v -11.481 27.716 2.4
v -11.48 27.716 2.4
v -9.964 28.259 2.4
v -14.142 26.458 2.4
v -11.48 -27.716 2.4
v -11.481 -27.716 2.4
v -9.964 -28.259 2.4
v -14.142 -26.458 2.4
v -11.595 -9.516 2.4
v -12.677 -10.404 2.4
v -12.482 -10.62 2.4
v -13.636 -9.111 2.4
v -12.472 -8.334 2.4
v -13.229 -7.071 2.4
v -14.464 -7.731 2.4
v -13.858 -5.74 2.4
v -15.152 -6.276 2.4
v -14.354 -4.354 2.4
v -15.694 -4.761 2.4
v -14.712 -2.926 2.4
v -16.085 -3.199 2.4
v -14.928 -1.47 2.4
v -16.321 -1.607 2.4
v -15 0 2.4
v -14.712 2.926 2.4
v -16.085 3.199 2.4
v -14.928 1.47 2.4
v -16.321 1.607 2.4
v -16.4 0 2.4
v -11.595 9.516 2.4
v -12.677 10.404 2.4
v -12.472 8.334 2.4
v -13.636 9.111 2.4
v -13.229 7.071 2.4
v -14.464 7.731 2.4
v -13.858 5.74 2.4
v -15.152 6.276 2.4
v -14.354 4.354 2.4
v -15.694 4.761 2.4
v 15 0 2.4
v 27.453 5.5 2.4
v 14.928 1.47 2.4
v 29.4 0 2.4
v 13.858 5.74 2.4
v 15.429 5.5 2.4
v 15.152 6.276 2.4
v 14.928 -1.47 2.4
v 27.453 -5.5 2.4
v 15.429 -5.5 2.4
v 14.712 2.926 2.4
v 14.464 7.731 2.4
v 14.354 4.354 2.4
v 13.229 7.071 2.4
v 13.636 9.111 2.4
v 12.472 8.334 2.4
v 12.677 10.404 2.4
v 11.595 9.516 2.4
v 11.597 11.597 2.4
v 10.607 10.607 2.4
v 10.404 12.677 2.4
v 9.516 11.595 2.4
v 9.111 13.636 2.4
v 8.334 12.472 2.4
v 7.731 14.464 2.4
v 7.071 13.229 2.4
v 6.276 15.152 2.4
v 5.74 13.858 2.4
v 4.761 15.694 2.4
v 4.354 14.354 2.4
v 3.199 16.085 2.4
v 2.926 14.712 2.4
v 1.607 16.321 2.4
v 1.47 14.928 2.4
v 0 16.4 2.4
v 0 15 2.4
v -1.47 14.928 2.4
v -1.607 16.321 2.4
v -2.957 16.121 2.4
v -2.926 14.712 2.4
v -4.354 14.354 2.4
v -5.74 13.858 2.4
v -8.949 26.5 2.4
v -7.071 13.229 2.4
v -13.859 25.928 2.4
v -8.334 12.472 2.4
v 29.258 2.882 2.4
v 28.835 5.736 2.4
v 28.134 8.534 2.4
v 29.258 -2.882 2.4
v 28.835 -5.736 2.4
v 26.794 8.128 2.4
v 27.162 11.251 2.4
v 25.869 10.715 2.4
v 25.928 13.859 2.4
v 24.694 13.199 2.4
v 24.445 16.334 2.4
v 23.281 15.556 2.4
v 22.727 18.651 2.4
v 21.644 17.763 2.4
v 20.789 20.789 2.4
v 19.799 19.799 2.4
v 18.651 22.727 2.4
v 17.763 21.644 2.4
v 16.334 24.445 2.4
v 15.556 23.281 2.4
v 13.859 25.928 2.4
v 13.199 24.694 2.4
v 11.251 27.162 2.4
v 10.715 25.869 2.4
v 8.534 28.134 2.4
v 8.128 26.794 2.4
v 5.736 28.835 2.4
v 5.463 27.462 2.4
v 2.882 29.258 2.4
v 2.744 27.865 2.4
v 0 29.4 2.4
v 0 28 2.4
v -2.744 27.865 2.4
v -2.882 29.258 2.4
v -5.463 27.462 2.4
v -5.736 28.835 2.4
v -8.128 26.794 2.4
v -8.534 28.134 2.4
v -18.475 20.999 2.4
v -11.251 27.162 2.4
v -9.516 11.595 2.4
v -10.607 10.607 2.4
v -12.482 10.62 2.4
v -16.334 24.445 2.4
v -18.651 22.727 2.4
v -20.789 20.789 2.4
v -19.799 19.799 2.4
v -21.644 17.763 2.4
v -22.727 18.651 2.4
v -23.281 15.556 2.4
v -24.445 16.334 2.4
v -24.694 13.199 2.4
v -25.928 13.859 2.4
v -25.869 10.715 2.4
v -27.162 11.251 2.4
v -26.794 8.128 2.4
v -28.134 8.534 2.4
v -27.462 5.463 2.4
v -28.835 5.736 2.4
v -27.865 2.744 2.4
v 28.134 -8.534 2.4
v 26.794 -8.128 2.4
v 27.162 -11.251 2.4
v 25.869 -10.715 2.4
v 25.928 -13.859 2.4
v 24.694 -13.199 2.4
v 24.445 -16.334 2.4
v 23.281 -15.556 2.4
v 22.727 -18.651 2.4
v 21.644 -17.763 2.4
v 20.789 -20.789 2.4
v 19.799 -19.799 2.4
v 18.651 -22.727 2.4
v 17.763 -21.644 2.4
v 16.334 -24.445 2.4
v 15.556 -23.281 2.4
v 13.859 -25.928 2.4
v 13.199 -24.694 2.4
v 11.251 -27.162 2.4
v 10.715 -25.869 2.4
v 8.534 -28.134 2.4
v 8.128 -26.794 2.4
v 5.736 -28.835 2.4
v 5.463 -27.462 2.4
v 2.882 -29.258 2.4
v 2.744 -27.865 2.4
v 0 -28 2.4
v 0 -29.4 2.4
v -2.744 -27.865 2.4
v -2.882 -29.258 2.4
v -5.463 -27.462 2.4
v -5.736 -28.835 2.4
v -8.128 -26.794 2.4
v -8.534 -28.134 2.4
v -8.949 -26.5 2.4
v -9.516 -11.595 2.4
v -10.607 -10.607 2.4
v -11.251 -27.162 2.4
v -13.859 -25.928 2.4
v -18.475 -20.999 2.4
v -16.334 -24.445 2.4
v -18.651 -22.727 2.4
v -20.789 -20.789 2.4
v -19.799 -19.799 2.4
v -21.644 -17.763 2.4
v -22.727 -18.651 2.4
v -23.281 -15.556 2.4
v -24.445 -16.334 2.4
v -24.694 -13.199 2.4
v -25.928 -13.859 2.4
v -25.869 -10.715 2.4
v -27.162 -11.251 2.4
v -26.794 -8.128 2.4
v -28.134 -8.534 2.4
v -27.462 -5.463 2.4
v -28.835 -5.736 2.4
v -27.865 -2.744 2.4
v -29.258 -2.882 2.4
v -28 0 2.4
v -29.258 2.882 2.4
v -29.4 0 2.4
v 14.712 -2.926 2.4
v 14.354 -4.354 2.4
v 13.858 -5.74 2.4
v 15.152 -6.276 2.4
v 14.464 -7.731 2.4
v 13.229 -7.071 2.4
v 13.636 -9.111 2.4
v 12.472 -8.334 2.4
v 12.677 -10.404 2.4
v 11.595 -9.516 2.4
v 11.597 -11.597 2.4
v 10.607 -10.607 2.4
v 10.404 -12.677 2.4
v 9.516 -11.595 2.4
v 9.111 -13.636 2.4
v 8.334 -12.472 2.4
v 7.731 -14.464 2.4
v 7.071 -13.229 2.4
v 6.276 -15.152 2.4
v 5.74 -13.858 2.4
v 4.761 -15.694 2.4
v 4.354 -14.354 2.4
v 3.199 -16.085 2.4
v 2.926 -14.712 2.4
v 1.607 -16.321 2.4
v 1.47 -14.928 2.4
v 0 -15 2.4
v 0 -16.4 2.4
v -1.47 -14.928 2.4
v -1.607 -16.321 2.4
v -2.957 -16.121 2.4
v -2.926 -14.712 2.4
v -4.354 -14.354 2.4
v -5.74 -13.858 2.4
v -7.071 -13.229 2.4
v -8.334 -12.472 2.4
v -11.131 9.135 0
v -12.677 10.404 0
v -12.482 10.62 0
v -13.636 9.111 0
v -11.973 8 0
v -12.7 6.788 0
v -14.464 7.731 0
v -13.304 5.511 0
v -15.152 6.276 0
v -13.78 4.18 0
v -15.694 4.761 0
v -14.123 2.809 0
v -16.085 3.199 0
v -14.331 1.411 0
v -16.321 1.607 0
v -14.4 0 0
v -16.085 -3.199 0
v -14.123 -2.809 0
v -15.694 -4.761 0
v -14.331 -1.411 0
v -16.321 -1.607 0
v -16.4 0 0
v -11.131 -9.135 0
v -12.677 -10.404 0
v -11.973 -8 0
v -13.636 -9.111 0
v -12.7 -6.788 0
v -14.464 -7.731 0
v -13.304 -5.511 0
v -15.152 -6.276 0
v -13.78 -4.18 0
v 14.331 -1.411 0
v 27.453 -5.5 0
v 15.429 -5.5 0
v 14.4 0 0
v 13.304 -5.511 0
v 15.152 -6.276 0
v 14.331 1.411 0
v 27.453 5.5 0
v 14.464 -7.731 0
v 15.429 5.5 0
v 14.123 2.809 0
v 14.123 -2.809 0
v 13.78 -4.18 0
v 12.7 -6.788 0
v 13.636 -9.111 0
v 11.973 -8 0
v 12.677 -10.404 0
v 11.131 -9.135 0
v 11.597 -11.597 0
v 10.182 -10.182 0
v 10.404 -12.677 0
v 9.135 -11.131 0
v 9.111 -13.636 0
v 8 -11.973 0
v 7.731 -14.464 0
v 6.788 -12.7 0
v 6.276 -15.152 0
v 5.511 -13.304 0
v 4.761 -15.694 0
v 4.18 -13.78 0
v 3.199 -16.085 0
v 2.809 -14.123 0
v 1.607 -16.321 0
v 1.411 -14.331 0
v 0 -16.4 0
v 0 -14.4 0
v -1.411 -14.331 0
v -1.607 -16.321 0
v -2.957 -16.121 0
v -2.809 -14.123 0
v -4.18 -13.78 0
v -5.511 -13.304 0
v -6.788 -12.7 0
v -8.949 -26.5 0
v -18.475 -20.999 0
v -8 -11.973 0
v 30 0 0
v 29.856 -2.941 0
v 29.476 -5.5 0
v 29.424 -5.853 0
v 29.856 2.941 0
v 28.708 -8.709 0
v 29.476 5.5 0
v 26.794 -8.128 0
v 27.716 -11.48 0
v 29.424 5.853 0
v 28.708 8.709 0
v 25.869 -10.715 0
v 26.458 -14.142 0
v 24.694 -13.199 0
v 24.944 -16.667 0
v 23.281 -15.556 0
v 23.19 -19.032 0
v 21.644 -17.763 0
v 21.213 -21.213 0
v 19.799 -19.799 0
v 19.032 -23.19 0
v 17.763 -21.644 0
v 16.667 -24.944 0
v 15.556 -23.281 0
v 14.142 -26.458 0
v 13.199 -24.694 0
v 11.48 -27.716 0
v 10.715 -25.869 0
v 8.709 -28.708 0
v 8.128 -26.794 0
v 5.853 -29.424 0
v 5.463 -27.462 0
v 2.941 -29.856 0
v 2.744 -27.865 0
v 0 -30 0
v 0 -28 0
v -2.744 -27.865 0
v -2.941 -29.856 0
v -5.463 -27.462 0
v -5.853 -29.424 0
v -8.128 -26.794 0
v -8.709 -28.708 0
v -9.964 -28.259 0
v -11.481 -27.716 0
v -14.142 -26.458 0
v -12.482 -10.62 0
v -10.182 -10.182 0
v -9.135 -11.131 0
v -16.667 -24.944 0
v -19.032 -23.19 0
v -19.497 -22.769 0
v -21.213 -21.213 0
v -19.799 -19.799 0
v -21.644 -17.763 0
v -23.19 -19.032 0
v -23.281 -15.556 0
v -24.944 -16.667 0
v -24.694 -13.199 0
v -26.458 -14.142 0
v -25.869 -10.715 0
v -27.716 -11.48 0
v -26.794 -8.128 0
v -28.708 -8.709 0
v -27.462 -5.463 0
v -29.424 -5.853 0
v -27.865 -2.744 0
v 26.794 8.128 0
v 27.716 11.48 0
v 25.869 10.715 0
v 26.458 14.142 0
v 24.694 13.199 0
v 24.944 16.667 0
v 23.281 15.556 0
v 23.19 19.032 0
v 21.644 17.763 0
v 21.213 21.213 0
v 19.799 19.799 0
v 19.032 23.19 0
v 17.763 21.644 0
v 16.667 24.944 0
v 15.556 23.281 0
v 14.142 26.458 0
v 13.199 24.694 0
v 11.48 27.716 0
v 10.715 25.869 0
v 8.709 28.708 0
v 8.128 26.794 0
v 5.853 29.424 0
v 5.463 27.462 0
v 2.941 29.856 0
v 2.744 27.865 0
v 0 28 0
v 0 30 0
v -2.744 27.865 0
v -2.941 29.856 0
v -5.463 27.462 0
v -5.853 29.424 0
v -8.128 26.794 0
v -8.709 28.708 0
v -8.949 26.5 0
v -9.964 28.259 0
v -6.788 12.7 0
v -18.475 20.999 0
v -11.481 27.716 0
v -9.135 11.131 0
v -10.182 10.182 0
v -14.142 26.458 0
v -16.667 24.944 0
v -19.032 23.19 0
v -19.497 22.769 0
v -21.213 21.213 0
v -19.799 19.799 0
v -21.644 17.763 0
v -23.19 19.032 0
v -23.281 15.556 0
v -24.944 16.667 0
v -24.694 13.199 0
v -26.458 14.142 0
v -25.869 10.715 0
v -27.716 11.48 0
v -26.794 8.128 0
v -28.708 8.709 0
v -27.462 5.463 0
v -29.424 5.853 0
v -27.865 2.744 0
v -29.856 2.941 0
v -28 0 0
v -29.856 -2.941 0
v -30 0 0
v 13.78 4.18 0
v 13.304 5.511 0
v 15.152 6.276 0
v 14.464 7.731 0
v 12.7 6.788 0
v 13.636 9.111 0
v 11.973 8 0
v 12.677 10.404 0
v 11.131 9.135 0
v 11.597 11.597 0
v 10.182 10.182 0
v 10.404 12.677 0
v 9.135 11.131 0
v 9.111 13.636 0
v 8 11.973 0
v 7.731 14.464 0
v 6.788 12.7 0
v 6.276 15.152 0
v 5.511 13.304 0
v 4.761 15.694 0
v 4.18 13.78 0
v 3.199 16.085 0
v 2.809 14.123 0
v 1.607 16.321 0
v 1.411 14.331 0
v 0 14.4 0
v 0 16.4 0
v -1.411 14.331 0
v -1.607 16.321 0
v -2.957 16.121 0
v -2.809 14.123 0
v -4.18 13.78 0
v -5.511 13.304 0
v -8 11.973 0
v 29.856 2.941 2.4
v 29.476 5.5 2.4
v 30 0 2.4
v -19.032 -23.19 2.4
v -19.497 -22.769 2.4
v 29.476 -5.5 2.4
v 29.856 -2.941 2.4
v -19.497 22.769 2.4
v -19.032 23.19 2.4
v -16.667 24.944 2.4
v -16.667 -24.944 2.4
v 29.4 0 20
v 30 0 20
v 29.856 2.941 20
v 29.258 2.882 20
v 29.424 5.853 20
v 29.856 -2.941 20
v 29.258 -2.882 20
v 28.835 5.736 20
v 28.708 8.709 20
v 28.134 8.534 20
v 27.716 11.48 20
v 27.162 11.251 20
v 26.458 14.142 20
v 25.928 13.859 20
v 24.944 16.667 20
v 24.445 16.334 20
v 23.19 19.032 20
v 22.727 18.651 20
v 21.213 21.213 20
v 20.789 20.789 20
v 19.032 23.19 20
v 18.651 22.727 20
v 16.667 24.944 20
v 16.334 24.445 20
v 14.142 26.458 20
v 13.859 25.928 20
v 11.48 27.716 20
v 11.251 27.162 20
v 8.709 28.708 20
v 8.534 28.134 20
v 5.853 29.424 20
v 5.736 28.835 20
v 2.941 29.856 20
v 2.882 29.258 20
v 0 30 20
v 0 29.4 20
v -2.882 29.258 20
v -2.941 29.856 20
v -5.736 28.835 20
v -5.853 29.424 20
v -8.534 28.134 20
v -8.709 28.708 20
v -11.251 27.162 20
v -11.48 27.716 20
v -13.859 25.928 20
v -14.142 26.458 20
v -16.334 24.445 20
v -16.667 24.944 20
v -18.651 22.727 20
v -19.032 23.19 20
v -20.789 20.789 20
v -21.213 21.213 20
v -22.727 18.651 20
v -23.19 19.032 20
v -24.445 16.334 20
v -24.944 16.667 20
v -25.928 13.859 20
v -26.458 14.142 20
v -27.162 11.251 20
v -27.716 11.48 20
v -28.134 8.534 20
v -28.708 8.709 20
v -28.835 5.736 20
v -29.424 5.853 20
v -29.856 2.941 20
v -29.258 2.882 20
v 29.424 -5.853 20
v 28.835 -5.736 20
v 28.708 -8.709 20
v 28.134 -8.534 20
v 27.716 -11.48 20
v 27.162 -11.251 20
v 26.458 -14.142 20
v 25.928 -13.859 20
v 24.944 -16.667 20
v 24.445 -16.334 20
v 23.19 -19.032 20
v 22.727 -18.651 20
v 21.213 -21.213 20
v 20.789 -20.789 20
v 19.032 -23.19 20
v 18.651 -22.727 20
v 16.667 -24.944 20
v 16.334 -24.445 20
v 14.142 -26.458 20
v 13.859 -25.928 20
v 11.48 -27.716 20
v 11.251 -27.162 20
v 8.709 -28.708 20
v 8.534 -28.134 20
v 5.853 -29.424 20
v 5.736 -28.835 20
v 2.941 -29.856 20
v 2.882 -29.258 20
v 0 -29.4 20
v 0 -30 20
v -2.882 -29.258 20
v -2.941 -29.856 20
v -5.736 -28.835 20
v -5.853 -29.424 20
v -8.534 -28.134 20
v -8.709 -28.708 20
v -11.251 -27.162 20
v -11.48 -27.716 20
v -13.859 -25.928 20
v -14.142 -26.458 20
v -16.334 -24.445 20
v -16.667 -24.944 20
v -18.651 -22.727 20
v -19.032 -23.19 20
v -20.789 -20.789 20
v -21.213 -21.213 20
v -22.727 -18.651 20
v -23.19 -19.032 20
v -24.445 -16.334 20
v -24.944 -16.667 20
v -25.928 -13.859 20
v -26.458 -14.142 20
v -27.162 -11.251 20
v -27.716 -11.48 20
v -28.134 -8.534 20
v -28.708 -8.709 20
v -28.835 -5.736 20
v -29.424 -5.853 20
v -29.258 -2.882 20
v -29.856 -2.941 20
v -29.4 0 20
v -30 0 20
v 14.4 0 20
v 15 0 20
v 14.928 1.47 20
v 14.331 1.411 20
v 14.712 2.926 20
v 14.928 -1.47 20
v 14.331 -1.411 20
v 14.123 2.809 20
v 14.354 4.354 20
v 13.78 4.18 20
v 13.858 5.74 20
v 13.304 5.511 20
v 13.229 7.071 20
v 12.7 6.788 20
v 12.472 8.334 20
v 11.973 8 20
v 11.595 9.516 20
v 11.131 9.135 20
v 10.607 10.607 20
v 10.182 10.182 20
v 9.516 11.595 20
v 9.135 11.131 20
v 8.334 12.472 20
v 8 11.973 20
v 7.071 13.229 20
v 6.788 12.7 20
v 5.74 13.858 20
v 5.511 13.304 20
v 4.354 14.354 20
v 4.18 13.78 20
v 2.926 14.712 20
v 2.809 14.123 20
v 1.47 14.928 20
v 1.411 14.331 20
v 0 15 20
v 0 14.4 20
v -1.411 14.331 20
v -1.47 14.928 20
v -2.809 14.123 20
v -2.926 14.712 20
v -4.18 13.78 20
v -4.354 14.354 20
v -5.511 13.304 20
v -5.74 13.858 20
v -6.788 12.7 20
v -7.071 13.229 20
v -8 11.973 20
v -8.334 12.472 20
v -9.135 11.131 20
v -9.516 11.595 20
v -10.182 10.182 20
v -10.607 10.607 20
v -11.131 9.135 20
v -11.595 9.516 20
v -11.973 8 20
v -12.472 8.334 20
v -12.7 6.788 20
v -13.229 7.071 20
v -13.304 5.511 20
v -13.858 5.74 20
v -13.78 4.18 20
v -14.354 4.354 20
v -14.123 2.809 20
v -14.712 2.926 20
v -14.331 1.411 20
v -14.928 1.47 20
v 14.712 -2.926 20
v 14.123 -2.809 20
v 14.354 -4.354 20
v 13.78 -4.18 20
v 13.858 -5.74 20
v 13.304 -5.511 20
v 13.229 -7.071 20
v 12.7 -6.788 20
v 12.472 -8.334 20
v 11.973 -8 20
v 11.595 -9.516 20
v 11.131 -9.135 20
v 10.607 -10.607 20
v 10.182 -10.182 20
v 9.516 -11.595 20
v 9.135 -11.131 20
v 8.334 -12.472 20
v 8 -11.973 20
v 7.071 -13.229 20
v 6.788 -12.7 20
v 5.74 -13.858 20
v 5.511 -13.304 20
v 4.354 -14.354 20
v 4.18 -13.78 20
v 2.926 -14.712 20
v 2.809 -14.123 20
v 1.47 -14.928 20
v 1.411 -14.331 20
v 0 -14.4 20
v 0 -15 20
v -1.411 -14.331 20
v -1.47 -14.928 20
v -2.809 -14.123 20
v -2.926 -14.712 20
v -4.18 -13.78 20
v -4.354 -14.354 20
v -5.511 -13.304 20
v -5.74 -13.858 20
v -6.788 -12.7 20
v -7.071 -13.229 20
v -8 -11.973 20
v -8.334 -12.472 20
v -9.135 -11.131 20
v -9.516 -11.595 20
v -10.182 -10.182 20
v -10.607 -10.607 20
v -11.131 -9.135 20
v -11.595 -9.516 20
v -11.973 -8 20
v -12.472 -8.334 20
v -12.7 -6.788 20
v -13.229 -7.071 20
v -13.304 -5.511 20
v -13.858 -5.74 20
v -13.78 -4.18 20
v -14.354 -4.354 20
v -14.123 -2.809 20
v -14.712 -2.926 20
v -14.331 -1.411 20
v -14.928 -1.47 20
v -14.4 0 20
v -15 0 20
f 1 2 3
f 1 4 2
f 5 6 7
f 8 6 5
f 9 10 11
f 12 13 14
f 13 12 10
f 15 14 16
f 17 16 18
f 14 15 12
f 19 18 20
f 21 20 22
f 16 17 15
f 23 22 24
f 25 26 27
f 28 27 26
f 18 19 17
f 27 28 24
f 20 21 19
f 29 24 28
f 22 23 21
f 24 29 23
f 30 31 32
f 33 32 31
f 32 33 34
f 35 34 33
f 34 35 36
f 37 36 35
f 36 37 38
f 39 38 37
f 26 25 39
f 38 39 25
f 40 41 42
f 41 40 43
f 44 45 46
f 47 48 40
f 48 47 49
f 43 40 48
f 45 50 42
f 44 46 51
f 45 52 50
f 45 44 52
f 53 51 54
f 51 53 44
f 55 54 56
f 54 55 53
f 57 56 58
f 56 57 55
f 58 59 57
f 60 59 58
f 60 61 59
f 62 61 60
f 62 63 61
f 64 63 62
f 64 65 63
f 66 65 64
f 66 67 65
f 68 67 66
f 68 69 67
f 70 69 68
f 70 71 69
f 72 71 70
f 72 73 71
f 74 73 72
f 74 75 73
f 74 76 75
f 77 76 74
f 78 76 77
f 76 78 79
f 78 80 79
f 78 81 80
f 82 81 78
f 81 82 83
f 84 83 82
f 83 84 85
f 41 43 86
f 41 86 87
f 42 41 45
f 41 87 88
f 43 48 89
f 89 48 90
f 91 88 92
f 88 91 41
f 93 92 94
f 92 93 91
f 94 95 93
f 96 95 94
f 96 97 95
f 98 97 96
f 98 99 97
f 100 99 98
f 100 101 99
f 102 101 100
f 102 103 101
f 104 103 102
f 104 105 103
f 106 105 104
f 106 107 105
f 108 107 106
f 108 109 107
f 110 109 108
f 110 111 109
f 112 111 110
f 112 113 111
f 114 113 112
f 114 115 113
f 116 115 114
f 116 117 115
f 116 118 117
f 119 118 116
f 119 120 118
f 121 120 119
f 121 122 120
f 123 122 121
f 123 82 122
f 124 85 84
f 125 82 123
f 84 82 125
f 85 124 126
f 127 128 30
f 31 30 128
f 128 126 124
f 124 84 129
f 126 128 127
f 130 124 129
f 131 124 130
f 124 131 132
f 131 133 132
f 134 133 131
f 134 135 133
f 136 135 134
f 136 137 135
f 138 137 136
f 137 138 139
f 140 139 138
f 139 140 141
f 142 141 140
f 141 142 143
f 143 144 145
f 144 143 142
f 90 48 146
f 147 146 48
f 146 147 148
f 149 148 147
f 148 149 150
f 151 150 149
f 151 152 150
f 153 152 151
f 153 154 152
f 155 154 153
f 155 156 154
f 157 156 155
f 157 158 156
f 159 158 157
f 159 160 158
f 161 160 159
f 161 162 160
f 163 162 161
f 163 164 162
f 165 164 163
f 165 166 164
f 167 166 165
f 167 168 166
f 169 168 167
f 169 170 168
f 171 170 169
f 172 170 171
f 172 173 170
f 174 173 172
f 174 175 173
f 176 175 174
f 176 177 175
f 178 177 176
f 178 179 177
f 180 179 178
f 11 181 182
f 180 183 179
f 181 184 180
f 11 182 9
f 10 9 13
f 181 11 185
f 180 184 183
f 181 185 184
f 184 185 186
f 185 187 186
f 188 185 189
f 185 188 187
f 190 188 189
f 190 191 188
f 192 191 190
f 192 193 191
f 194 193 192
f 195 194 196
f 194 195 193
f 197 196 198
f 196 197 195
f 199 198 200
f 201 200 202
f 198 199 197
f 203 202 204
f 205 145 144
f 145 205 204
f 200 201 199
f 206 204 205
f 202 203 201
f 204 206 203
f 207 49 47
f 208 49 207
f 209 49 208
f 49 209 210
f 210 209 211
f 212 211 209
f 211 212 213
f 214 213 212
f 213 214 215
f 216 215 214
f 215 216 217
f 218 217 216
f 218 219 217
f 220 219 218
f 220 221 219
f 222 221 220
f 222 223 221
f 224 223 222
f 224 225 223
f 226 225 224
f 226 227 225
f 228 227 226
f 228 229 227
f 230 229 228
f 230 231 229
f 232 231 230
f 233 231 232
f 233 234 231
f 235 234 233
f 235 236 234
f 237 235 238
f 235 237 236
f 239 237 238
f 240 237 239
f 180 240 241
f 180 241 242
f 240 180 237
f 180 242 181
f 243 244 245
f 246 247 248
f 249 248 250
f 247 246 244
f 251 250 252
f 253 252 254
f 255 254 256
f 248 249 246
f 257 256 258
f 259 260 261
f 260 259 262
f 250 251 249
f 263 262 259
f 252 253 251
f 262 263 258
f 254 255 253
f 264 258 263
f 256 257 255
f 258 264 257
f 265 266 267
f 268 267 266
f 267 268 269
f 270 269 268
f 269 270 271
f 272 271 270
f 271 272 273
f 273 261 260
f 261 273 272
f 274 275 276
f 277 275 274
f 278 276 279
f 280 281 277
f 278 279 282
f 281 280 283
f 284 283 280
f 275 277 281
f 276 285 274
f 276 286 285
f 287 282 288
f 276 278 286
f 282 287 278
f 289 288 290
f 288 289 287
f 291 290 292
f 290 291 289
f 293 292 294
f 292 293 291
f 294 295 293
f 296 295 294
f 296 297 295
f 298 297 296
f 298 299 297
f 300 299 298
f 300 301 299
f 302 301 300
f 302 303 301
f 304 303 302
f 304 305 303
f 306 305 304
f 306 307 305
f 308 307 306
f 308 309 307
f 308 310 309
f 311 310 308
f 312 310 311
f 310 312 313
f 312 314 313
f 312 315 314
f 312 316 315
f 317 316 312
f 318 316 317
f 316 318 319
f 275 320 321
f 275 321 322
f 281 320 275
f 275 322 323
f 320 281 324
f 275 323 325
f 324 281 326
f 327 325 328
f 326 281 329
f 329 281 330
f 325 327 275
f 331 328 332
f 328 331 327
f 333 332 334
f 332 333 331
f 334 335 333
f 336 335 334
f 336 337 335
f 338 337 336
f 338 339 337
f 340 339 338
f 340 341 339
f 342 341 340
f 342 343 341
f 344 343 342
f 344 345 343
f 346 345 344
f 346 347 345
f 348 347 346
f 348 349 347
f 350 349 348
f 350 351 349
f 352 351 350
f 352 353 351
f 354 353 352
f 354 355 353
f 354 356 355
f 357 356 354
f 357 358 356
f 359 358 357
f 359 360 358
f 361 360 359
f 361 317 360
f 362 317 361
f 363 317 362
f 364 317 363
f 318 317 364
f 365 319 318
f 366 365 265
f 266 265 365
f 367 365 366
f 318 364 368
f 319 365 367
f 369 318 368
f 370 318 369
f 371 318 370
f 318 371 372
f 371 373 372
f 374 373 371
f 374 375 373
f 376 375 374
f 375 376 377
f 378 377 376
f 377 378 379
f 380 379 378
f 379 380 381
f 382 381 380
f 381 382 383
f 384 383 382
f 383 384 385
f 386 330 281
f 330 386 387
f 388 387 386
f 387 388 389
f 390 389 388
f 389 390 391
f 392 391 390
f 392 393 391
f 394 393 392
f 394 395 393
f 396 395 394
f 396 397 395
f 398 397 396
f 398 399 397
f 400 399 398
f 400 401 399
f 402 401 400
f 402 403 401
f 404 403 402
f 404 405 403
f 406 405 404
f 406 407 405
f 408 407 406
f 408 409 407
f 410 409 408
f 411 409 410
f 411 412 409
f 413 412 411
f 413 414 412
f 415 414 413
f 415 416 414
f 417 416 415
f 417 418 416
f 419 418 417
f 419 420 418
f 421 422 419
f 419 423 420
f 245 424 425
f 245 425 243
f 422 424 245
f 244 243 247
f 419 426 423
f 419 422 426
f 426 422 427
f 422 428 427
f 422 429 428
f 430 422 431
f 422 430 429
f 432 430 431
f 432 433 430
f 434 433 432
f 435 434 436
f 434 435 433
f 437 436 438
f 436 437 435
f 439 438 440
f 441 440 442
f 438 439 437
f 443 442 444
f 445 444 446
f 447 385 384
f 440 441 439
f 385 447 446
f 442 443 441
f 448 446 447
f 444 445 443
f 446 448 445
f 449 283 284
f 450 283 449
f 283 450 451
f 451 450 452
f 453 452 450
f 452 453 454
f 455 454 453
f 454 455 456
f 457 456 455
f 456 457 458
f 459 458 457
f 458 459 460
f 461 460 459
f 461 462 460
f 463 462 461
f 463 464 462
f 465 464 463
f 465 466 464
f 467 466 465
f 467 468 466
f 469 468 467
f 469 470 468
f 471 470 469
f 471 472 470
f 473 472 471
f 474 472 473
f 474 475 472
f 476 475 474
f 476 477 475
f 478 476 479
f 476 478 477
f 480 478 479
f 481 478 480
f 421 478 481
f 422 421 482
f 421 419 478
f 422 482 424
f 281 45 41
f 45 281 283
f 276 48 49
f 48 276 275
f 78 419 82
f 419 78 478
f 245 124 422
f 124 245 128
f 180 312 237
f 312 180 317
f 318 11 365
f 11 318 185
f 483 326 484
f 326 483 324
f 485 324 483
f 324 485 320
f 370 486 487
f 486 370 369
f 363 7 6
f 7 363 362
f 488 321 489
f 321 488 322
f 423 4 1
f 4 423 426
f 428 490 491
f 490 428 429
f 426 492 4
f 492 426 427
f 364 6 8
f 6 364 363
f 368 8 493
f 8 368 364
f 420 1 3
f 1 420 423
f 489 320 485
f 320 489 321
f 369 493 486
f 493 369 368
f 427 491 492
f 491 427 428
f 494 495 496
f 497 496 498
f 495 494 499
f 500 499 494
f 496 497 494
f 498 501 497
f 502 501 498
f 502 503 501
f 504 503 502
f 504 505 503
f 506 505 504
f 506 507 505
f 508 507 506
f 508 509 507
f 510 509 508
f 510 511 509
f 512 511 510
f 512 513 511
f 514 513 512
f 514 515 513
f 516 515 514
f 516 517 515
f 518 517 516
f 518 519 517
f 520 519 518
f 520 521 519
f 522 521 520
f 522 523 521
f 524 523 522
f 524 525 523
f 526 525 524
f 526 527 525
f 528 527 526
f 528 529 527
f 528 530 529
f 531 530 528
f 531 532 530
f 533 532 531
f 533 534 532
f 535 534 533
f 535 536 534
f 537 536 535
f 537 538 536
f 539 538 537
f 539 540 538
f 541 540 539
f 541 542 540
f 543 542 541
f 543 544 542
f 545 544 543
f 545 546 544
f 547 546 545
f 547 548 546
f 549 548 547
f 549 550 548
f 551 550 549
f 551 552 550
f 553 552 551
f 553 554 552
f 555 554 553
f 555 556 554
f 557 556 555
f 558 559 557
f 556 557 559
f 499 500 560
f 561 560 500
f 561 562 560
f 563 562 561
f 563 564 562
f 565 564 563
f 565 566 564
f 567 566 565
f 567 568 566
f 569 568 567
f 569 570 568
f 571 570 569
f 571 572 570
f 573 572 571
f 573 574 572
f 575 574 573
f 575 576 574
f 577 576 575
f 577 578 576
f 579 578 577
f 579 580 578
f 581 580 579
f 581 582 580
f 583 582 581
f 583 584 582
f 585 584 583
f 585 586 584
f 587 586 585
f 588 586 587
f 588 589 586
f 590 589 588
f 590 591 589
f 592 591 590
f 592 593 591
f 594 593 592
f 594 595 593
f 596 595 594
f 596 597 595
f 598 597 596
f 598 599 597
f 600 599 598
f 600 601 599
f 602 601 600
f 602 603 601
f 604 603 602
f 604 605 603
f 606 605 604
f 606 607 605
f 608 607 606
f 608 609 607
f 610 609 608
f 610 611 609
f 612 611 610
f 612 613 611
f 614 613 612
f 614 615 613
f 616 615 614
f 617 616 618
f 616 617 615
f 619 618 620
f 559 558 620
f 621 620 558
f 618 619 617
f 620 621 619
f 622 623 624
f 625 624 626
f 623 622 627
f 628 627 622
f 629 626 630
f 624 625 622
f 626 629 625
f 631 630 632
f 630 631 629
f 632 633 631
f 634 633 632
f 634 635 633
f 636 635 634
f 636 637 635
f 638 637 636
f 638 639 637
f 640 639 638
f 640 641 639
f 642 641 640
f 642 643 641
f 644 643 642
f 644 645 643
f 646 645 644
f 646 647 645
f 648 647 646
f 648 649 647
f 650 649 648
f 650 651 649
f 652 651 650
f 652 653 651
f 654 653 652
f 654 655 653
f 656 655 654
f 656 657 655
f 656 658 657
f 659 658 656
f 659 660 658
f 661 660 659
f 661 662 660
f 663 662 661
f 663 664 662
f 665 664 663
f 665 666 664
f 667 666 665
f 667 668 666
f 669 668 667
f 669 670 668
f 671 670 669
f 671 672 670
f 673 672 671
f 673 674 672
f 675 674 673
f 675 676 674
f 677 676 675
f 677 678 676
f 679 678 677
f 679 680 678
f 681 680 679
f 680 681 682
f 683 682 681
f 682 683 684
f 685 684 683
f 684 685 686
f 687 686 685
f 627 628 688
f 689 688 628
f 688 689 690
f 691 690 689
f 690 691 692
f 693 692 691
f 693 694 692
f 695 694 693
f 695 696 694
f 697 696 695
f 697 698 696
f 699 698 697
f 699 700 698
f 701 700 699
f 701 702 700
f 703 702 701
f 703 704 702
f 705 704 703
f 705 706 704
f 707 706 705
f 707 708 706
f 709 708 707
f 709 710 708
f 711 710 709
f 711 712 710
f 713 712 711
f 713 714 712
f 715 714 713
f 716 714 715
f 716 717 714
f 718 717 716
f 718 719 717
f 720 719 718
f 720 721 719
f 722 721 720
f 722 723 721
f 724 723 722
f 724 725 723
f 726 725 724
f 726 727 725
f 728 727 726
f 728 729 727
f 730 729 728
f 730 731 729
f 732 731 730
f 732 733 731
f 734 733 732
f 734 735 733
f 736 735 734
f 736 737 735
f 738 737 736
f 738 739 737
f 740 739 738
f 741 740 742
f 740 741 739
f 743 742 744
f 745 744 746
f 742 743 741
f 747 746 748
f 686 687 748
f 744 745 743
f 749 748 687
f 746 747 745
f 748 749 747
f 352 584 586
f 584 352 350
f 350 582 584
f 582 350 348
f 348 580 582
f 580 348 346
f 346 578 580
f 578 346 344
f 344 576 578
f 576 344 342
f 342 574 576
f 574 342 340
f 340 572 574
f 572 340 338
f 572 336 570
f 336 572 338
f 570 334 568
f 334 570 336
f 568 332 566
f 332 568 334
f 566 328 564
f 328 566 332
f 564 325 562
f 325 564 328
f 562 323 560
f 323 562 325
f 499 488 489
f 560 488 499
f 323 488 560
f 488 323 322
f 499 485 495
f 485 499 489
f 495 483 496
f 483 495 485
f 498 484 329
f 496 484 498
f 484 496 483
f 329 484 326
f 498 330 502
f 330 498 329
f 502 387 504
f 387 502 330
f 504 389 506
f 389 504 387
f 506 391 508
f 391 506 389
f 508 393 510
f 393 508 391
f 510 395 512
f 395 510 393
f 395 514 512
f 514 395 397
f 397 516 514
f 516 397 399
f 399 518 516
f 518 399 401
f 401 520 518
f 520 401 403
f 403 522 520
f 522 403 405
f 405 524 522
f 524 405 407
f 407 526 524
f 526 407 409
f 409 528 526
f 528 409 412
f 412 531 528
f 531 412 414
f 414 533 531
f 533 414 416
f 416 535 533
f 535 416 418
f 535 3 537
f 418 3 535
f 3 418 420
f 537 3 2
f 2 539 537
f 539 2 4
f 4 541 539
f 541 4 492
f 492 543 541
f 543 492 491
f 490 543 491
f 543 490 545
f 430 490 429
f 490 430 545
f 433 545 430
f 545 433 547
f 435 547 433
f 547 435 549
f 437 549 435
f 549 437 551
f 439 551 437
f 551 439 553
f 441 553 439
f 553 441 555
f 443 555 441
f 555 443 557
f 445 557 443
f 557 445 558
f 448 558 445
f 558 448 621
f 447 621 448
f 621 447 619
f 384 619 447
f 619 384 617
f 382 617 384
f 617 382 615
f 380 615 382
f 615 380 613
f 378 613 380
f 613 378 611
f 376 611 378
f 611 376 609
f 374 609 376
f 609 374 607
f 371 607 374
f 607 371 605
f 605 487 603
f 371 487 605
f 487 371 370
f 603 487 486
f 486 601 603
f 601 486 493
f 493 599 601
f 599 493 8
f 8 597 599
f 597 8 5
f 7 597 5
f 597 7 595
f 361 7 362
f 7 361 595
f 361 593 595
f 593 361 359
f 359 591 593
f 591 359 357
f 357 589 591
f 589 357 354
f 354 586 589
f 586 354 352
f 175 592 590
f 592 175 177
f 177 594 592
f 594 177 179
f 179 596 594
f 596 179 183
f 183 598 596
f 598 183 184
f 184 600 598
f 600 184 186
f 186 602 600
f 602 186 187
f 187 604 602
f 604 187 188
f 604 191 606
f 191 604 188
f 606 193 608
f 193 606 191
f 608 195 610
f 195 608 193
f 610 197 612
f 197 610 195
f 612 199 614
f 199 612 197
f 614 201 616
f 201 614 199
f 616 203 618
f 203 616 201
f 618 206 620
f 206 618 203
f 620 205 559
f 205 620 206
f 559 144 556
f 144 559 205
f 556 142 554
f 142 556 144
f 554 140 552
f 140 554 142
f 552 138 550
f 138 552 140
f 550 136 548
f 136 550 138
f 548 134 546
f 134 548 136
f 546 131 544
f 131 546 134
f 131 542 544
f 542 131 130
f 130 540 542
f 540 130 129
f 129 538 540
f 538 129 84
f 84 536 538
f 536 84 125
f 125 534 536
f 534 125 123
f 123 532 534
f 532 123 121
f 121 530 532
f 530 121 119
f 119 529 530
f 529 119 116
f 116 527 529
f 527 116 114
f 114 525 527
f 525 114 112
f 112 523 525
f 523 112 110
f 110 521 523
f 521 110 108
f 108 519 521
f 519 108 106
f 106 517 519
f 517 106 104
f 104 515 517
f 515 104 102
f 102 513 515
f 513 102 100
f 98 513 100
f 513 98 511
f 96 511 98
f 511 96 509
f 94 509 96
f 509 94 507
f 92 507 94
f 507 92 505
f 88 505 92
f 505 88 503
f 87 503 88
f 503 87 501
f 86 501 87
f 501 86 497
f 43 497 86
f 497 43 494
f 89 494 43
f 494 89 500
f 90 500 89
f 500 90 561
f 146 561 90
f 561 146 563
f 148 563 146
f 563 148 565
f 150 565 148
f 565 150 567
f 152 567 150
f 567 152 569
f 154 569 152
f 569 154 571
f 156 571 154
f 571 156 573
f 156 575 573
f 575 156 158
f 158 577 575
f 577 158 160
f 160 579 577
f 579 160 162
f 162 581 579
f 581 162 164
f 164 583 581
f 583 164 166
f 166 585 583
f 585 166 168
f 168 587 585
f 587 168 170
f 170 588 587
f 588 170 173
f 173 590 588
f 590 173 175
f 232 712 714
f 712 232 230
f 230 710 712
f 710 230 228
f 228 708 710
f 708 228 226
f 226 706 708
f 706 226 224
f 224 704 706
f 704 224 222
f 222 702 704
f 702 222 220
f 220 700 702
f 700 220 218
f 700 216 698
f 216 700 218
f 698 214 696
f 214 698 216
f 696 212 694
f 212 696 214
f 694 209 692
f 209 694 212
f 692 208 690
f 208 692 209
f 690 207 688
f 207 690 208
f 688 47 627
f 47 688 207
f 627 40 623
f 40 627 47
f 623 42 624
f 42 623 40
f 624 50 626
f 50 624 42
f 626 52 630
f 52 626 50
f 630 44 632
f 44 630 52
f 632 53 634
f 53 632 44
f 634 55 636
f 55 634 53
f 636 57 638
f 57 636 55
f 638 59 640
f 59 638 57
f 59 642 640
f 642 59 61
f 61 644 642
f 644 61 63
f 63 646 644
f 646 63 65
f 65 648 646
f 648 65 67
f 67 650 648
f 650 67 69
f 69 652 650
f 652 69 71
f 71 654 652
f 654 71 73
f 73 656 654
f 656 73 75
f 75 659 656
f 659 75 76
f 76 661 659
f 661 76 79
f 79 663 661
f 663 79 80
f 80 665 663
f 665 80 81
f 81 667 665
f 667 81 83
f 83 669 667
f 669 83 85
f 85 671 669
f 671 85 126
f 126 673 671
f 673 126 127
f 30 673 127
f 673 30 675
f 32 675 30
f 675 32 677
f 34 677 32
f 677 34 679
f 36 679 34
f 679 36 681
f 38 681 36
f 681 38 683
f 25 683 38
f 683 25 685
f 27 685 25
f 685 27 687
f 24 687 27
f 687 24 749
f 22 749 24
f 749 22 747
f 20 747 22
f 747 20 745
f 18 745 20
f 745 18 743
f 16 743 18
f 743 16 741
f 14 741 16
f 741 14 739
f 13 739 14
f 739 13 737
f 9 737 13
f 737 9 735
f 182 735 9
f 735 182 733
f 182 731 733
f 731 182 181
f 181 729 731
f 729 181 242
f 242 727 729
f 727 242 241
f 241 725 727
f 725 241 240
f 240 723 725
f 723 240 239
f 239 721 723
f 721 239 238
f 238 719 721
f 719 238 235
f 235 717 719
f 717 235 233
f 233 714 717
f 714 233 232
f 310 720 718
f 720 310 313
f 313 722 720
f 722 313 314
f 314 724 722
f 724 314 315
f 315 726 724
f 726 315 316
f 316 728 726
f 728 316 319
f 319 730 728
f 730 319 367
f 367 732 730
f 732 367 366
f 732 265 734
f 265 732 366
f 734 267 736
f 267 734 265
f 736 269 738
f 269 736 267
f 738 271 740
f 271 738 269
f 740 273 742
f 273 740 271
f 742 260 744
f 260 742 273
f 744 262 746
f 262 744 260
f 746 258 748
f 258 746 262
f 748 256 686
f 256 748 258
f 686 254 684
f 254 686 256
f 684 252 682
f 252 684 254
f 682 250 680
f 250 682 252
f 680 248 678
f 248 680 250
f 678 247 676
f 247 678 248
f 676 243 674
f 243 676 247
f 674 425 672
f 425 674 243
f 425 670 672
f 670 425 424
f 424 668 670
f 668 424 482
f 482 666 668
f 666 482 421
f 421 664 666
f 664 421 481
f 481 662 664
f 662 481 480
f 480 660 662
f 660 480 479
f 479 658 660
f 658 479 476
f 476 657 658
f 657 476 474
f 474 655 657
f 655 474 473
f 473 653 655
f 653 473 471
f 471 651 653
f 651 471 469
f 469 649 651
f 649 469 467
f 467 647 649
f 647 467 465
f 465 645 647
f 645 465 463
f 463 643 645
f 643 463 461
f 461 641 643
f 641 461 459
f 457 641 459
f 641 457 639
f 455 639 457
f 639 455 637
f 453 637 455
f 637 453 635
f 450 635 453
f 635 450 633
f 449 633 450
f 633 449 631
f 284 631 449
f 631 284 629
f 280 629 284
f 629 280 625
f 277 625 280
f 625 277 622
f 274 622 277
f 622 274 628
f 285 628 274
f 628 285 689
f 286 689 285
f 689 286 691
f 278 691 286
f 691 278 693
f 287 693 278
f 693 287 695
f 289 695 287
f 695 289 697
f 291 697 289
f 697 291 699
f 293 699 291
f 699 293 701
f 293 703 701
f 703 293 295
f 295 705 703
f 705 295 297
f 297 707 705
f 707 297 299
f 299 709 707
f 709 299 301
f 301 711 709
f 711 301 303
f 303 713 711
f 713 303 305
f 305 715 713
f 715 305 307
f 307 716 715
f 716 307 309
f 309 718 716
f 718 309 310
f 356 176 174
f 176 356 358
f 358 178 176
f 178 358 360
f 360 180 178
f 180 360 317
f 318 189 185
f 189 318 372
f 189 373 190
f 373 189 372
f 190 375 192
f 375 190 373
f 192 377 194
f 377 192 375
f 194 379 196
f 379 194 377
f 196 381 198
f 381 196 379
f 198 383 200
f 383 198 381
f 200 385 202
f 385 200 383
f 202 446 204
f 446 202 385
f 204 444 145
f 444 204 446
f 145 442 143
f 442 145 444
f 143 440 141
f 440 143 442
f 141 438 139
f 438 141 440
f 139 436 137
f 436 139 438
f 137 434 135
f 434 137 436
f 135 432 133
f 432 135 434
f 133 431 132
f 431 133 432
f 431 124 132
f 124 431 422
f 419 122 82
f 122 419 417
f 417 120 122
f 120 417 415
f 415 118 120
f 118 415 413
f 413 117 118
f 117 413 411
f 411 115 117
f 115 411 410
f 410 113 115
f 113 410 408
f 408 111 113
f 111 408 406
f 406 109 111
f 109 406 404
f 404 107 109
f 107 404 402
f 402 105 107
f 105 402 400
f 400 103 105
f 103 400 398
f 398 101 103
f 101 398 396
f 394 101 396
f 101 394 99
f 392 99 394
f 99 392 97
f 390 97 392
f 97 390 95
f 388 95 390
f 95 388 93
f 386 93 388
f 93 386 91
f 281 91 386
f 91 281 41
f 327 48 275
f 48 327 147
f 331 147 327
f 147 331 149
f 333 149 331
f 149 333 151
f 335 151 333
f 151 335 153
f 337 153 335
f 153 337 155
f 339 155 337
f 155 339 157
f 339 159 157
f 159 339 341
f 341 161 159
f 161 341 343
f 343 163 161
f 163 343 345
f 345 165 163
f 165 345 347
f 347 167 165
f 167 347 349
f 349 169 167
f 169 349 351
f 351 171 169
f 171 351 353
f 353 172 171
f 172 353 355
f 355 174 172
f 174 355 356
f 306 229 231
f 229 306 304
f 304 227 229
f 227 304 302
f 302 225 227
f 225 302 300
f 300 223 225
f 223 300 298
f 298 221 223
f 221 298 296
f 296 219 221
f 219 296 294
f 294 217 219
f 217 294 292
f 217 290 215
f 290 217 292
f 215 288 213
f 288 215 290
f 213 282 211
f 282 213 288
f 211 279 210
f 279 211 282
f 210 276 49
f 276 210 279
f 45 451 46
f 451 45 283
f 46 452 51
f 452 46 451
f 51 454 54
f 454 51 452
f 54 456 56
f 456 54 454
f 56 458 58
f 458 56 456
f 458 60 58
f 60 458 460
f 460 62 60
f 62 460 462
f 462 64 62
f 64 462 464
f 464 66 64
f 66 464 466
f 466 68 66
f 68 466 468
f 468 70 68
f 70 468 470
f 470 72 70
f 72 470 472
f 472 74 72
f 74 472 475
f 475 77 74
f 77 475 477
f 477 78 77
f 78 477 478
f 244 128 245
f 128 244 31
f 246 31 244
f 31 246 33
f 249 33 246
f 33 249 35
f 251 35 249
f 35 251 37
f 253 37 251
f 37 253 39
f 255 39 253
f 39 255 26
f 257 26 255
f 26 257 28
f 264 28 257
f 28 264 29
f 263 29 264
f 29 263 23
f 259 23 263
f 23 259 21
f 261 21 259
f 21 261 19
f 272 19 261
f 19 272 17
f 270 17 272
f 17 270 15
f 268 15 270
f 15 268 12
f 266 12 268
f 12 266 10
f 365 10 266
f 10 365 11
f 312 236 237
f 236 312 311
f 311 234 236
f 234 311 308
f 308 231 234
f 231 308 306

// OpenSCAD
$fn=64;
h=20;
s=60;
d_thick=2*15; // dough thickness

plast_thick=0.4*3;
plast_thick2=2.4;

arms=3;

intersection() {
    difference() {
        // Arms
        arm_thick=11;
        for( I = [ 0:360/arms: 359 ] )  {
            rotate ( [ 0,0,I])
                translate([0,-arm_thick/2,0])
                    cube([s,arm_thick,plast_thick2]);
        }
        // Core
        linear_extrude(plast_thick2+0.1)
            circle(d=s-plast_thick-d_thick);
    }
    // don't let the arms go longer than the whole thing
    linear_extrude(h)
        circle(d=s);
}

linear_extrude(h) {
    // Outer diameter walls
    difference() {
        circle(d=s);
        circle(d=s-plast_thick);
    }    

    // Inner diameter walls
    difference() {
        circle(d=s-d_thick);
        circle(d=s-plast_thick-d_thick);
    }
}

// extra support near handle
linear_extrude(plast_thick2) {
    // Outer
    difference() {
        circle(d=s);
        circle(d=s-4);
    }
    // Inner
    difference() {
        circle(d=s-plast_thick-d_thick+4);
        circle(d=s-plast_thick-d_thick);
    }
}
